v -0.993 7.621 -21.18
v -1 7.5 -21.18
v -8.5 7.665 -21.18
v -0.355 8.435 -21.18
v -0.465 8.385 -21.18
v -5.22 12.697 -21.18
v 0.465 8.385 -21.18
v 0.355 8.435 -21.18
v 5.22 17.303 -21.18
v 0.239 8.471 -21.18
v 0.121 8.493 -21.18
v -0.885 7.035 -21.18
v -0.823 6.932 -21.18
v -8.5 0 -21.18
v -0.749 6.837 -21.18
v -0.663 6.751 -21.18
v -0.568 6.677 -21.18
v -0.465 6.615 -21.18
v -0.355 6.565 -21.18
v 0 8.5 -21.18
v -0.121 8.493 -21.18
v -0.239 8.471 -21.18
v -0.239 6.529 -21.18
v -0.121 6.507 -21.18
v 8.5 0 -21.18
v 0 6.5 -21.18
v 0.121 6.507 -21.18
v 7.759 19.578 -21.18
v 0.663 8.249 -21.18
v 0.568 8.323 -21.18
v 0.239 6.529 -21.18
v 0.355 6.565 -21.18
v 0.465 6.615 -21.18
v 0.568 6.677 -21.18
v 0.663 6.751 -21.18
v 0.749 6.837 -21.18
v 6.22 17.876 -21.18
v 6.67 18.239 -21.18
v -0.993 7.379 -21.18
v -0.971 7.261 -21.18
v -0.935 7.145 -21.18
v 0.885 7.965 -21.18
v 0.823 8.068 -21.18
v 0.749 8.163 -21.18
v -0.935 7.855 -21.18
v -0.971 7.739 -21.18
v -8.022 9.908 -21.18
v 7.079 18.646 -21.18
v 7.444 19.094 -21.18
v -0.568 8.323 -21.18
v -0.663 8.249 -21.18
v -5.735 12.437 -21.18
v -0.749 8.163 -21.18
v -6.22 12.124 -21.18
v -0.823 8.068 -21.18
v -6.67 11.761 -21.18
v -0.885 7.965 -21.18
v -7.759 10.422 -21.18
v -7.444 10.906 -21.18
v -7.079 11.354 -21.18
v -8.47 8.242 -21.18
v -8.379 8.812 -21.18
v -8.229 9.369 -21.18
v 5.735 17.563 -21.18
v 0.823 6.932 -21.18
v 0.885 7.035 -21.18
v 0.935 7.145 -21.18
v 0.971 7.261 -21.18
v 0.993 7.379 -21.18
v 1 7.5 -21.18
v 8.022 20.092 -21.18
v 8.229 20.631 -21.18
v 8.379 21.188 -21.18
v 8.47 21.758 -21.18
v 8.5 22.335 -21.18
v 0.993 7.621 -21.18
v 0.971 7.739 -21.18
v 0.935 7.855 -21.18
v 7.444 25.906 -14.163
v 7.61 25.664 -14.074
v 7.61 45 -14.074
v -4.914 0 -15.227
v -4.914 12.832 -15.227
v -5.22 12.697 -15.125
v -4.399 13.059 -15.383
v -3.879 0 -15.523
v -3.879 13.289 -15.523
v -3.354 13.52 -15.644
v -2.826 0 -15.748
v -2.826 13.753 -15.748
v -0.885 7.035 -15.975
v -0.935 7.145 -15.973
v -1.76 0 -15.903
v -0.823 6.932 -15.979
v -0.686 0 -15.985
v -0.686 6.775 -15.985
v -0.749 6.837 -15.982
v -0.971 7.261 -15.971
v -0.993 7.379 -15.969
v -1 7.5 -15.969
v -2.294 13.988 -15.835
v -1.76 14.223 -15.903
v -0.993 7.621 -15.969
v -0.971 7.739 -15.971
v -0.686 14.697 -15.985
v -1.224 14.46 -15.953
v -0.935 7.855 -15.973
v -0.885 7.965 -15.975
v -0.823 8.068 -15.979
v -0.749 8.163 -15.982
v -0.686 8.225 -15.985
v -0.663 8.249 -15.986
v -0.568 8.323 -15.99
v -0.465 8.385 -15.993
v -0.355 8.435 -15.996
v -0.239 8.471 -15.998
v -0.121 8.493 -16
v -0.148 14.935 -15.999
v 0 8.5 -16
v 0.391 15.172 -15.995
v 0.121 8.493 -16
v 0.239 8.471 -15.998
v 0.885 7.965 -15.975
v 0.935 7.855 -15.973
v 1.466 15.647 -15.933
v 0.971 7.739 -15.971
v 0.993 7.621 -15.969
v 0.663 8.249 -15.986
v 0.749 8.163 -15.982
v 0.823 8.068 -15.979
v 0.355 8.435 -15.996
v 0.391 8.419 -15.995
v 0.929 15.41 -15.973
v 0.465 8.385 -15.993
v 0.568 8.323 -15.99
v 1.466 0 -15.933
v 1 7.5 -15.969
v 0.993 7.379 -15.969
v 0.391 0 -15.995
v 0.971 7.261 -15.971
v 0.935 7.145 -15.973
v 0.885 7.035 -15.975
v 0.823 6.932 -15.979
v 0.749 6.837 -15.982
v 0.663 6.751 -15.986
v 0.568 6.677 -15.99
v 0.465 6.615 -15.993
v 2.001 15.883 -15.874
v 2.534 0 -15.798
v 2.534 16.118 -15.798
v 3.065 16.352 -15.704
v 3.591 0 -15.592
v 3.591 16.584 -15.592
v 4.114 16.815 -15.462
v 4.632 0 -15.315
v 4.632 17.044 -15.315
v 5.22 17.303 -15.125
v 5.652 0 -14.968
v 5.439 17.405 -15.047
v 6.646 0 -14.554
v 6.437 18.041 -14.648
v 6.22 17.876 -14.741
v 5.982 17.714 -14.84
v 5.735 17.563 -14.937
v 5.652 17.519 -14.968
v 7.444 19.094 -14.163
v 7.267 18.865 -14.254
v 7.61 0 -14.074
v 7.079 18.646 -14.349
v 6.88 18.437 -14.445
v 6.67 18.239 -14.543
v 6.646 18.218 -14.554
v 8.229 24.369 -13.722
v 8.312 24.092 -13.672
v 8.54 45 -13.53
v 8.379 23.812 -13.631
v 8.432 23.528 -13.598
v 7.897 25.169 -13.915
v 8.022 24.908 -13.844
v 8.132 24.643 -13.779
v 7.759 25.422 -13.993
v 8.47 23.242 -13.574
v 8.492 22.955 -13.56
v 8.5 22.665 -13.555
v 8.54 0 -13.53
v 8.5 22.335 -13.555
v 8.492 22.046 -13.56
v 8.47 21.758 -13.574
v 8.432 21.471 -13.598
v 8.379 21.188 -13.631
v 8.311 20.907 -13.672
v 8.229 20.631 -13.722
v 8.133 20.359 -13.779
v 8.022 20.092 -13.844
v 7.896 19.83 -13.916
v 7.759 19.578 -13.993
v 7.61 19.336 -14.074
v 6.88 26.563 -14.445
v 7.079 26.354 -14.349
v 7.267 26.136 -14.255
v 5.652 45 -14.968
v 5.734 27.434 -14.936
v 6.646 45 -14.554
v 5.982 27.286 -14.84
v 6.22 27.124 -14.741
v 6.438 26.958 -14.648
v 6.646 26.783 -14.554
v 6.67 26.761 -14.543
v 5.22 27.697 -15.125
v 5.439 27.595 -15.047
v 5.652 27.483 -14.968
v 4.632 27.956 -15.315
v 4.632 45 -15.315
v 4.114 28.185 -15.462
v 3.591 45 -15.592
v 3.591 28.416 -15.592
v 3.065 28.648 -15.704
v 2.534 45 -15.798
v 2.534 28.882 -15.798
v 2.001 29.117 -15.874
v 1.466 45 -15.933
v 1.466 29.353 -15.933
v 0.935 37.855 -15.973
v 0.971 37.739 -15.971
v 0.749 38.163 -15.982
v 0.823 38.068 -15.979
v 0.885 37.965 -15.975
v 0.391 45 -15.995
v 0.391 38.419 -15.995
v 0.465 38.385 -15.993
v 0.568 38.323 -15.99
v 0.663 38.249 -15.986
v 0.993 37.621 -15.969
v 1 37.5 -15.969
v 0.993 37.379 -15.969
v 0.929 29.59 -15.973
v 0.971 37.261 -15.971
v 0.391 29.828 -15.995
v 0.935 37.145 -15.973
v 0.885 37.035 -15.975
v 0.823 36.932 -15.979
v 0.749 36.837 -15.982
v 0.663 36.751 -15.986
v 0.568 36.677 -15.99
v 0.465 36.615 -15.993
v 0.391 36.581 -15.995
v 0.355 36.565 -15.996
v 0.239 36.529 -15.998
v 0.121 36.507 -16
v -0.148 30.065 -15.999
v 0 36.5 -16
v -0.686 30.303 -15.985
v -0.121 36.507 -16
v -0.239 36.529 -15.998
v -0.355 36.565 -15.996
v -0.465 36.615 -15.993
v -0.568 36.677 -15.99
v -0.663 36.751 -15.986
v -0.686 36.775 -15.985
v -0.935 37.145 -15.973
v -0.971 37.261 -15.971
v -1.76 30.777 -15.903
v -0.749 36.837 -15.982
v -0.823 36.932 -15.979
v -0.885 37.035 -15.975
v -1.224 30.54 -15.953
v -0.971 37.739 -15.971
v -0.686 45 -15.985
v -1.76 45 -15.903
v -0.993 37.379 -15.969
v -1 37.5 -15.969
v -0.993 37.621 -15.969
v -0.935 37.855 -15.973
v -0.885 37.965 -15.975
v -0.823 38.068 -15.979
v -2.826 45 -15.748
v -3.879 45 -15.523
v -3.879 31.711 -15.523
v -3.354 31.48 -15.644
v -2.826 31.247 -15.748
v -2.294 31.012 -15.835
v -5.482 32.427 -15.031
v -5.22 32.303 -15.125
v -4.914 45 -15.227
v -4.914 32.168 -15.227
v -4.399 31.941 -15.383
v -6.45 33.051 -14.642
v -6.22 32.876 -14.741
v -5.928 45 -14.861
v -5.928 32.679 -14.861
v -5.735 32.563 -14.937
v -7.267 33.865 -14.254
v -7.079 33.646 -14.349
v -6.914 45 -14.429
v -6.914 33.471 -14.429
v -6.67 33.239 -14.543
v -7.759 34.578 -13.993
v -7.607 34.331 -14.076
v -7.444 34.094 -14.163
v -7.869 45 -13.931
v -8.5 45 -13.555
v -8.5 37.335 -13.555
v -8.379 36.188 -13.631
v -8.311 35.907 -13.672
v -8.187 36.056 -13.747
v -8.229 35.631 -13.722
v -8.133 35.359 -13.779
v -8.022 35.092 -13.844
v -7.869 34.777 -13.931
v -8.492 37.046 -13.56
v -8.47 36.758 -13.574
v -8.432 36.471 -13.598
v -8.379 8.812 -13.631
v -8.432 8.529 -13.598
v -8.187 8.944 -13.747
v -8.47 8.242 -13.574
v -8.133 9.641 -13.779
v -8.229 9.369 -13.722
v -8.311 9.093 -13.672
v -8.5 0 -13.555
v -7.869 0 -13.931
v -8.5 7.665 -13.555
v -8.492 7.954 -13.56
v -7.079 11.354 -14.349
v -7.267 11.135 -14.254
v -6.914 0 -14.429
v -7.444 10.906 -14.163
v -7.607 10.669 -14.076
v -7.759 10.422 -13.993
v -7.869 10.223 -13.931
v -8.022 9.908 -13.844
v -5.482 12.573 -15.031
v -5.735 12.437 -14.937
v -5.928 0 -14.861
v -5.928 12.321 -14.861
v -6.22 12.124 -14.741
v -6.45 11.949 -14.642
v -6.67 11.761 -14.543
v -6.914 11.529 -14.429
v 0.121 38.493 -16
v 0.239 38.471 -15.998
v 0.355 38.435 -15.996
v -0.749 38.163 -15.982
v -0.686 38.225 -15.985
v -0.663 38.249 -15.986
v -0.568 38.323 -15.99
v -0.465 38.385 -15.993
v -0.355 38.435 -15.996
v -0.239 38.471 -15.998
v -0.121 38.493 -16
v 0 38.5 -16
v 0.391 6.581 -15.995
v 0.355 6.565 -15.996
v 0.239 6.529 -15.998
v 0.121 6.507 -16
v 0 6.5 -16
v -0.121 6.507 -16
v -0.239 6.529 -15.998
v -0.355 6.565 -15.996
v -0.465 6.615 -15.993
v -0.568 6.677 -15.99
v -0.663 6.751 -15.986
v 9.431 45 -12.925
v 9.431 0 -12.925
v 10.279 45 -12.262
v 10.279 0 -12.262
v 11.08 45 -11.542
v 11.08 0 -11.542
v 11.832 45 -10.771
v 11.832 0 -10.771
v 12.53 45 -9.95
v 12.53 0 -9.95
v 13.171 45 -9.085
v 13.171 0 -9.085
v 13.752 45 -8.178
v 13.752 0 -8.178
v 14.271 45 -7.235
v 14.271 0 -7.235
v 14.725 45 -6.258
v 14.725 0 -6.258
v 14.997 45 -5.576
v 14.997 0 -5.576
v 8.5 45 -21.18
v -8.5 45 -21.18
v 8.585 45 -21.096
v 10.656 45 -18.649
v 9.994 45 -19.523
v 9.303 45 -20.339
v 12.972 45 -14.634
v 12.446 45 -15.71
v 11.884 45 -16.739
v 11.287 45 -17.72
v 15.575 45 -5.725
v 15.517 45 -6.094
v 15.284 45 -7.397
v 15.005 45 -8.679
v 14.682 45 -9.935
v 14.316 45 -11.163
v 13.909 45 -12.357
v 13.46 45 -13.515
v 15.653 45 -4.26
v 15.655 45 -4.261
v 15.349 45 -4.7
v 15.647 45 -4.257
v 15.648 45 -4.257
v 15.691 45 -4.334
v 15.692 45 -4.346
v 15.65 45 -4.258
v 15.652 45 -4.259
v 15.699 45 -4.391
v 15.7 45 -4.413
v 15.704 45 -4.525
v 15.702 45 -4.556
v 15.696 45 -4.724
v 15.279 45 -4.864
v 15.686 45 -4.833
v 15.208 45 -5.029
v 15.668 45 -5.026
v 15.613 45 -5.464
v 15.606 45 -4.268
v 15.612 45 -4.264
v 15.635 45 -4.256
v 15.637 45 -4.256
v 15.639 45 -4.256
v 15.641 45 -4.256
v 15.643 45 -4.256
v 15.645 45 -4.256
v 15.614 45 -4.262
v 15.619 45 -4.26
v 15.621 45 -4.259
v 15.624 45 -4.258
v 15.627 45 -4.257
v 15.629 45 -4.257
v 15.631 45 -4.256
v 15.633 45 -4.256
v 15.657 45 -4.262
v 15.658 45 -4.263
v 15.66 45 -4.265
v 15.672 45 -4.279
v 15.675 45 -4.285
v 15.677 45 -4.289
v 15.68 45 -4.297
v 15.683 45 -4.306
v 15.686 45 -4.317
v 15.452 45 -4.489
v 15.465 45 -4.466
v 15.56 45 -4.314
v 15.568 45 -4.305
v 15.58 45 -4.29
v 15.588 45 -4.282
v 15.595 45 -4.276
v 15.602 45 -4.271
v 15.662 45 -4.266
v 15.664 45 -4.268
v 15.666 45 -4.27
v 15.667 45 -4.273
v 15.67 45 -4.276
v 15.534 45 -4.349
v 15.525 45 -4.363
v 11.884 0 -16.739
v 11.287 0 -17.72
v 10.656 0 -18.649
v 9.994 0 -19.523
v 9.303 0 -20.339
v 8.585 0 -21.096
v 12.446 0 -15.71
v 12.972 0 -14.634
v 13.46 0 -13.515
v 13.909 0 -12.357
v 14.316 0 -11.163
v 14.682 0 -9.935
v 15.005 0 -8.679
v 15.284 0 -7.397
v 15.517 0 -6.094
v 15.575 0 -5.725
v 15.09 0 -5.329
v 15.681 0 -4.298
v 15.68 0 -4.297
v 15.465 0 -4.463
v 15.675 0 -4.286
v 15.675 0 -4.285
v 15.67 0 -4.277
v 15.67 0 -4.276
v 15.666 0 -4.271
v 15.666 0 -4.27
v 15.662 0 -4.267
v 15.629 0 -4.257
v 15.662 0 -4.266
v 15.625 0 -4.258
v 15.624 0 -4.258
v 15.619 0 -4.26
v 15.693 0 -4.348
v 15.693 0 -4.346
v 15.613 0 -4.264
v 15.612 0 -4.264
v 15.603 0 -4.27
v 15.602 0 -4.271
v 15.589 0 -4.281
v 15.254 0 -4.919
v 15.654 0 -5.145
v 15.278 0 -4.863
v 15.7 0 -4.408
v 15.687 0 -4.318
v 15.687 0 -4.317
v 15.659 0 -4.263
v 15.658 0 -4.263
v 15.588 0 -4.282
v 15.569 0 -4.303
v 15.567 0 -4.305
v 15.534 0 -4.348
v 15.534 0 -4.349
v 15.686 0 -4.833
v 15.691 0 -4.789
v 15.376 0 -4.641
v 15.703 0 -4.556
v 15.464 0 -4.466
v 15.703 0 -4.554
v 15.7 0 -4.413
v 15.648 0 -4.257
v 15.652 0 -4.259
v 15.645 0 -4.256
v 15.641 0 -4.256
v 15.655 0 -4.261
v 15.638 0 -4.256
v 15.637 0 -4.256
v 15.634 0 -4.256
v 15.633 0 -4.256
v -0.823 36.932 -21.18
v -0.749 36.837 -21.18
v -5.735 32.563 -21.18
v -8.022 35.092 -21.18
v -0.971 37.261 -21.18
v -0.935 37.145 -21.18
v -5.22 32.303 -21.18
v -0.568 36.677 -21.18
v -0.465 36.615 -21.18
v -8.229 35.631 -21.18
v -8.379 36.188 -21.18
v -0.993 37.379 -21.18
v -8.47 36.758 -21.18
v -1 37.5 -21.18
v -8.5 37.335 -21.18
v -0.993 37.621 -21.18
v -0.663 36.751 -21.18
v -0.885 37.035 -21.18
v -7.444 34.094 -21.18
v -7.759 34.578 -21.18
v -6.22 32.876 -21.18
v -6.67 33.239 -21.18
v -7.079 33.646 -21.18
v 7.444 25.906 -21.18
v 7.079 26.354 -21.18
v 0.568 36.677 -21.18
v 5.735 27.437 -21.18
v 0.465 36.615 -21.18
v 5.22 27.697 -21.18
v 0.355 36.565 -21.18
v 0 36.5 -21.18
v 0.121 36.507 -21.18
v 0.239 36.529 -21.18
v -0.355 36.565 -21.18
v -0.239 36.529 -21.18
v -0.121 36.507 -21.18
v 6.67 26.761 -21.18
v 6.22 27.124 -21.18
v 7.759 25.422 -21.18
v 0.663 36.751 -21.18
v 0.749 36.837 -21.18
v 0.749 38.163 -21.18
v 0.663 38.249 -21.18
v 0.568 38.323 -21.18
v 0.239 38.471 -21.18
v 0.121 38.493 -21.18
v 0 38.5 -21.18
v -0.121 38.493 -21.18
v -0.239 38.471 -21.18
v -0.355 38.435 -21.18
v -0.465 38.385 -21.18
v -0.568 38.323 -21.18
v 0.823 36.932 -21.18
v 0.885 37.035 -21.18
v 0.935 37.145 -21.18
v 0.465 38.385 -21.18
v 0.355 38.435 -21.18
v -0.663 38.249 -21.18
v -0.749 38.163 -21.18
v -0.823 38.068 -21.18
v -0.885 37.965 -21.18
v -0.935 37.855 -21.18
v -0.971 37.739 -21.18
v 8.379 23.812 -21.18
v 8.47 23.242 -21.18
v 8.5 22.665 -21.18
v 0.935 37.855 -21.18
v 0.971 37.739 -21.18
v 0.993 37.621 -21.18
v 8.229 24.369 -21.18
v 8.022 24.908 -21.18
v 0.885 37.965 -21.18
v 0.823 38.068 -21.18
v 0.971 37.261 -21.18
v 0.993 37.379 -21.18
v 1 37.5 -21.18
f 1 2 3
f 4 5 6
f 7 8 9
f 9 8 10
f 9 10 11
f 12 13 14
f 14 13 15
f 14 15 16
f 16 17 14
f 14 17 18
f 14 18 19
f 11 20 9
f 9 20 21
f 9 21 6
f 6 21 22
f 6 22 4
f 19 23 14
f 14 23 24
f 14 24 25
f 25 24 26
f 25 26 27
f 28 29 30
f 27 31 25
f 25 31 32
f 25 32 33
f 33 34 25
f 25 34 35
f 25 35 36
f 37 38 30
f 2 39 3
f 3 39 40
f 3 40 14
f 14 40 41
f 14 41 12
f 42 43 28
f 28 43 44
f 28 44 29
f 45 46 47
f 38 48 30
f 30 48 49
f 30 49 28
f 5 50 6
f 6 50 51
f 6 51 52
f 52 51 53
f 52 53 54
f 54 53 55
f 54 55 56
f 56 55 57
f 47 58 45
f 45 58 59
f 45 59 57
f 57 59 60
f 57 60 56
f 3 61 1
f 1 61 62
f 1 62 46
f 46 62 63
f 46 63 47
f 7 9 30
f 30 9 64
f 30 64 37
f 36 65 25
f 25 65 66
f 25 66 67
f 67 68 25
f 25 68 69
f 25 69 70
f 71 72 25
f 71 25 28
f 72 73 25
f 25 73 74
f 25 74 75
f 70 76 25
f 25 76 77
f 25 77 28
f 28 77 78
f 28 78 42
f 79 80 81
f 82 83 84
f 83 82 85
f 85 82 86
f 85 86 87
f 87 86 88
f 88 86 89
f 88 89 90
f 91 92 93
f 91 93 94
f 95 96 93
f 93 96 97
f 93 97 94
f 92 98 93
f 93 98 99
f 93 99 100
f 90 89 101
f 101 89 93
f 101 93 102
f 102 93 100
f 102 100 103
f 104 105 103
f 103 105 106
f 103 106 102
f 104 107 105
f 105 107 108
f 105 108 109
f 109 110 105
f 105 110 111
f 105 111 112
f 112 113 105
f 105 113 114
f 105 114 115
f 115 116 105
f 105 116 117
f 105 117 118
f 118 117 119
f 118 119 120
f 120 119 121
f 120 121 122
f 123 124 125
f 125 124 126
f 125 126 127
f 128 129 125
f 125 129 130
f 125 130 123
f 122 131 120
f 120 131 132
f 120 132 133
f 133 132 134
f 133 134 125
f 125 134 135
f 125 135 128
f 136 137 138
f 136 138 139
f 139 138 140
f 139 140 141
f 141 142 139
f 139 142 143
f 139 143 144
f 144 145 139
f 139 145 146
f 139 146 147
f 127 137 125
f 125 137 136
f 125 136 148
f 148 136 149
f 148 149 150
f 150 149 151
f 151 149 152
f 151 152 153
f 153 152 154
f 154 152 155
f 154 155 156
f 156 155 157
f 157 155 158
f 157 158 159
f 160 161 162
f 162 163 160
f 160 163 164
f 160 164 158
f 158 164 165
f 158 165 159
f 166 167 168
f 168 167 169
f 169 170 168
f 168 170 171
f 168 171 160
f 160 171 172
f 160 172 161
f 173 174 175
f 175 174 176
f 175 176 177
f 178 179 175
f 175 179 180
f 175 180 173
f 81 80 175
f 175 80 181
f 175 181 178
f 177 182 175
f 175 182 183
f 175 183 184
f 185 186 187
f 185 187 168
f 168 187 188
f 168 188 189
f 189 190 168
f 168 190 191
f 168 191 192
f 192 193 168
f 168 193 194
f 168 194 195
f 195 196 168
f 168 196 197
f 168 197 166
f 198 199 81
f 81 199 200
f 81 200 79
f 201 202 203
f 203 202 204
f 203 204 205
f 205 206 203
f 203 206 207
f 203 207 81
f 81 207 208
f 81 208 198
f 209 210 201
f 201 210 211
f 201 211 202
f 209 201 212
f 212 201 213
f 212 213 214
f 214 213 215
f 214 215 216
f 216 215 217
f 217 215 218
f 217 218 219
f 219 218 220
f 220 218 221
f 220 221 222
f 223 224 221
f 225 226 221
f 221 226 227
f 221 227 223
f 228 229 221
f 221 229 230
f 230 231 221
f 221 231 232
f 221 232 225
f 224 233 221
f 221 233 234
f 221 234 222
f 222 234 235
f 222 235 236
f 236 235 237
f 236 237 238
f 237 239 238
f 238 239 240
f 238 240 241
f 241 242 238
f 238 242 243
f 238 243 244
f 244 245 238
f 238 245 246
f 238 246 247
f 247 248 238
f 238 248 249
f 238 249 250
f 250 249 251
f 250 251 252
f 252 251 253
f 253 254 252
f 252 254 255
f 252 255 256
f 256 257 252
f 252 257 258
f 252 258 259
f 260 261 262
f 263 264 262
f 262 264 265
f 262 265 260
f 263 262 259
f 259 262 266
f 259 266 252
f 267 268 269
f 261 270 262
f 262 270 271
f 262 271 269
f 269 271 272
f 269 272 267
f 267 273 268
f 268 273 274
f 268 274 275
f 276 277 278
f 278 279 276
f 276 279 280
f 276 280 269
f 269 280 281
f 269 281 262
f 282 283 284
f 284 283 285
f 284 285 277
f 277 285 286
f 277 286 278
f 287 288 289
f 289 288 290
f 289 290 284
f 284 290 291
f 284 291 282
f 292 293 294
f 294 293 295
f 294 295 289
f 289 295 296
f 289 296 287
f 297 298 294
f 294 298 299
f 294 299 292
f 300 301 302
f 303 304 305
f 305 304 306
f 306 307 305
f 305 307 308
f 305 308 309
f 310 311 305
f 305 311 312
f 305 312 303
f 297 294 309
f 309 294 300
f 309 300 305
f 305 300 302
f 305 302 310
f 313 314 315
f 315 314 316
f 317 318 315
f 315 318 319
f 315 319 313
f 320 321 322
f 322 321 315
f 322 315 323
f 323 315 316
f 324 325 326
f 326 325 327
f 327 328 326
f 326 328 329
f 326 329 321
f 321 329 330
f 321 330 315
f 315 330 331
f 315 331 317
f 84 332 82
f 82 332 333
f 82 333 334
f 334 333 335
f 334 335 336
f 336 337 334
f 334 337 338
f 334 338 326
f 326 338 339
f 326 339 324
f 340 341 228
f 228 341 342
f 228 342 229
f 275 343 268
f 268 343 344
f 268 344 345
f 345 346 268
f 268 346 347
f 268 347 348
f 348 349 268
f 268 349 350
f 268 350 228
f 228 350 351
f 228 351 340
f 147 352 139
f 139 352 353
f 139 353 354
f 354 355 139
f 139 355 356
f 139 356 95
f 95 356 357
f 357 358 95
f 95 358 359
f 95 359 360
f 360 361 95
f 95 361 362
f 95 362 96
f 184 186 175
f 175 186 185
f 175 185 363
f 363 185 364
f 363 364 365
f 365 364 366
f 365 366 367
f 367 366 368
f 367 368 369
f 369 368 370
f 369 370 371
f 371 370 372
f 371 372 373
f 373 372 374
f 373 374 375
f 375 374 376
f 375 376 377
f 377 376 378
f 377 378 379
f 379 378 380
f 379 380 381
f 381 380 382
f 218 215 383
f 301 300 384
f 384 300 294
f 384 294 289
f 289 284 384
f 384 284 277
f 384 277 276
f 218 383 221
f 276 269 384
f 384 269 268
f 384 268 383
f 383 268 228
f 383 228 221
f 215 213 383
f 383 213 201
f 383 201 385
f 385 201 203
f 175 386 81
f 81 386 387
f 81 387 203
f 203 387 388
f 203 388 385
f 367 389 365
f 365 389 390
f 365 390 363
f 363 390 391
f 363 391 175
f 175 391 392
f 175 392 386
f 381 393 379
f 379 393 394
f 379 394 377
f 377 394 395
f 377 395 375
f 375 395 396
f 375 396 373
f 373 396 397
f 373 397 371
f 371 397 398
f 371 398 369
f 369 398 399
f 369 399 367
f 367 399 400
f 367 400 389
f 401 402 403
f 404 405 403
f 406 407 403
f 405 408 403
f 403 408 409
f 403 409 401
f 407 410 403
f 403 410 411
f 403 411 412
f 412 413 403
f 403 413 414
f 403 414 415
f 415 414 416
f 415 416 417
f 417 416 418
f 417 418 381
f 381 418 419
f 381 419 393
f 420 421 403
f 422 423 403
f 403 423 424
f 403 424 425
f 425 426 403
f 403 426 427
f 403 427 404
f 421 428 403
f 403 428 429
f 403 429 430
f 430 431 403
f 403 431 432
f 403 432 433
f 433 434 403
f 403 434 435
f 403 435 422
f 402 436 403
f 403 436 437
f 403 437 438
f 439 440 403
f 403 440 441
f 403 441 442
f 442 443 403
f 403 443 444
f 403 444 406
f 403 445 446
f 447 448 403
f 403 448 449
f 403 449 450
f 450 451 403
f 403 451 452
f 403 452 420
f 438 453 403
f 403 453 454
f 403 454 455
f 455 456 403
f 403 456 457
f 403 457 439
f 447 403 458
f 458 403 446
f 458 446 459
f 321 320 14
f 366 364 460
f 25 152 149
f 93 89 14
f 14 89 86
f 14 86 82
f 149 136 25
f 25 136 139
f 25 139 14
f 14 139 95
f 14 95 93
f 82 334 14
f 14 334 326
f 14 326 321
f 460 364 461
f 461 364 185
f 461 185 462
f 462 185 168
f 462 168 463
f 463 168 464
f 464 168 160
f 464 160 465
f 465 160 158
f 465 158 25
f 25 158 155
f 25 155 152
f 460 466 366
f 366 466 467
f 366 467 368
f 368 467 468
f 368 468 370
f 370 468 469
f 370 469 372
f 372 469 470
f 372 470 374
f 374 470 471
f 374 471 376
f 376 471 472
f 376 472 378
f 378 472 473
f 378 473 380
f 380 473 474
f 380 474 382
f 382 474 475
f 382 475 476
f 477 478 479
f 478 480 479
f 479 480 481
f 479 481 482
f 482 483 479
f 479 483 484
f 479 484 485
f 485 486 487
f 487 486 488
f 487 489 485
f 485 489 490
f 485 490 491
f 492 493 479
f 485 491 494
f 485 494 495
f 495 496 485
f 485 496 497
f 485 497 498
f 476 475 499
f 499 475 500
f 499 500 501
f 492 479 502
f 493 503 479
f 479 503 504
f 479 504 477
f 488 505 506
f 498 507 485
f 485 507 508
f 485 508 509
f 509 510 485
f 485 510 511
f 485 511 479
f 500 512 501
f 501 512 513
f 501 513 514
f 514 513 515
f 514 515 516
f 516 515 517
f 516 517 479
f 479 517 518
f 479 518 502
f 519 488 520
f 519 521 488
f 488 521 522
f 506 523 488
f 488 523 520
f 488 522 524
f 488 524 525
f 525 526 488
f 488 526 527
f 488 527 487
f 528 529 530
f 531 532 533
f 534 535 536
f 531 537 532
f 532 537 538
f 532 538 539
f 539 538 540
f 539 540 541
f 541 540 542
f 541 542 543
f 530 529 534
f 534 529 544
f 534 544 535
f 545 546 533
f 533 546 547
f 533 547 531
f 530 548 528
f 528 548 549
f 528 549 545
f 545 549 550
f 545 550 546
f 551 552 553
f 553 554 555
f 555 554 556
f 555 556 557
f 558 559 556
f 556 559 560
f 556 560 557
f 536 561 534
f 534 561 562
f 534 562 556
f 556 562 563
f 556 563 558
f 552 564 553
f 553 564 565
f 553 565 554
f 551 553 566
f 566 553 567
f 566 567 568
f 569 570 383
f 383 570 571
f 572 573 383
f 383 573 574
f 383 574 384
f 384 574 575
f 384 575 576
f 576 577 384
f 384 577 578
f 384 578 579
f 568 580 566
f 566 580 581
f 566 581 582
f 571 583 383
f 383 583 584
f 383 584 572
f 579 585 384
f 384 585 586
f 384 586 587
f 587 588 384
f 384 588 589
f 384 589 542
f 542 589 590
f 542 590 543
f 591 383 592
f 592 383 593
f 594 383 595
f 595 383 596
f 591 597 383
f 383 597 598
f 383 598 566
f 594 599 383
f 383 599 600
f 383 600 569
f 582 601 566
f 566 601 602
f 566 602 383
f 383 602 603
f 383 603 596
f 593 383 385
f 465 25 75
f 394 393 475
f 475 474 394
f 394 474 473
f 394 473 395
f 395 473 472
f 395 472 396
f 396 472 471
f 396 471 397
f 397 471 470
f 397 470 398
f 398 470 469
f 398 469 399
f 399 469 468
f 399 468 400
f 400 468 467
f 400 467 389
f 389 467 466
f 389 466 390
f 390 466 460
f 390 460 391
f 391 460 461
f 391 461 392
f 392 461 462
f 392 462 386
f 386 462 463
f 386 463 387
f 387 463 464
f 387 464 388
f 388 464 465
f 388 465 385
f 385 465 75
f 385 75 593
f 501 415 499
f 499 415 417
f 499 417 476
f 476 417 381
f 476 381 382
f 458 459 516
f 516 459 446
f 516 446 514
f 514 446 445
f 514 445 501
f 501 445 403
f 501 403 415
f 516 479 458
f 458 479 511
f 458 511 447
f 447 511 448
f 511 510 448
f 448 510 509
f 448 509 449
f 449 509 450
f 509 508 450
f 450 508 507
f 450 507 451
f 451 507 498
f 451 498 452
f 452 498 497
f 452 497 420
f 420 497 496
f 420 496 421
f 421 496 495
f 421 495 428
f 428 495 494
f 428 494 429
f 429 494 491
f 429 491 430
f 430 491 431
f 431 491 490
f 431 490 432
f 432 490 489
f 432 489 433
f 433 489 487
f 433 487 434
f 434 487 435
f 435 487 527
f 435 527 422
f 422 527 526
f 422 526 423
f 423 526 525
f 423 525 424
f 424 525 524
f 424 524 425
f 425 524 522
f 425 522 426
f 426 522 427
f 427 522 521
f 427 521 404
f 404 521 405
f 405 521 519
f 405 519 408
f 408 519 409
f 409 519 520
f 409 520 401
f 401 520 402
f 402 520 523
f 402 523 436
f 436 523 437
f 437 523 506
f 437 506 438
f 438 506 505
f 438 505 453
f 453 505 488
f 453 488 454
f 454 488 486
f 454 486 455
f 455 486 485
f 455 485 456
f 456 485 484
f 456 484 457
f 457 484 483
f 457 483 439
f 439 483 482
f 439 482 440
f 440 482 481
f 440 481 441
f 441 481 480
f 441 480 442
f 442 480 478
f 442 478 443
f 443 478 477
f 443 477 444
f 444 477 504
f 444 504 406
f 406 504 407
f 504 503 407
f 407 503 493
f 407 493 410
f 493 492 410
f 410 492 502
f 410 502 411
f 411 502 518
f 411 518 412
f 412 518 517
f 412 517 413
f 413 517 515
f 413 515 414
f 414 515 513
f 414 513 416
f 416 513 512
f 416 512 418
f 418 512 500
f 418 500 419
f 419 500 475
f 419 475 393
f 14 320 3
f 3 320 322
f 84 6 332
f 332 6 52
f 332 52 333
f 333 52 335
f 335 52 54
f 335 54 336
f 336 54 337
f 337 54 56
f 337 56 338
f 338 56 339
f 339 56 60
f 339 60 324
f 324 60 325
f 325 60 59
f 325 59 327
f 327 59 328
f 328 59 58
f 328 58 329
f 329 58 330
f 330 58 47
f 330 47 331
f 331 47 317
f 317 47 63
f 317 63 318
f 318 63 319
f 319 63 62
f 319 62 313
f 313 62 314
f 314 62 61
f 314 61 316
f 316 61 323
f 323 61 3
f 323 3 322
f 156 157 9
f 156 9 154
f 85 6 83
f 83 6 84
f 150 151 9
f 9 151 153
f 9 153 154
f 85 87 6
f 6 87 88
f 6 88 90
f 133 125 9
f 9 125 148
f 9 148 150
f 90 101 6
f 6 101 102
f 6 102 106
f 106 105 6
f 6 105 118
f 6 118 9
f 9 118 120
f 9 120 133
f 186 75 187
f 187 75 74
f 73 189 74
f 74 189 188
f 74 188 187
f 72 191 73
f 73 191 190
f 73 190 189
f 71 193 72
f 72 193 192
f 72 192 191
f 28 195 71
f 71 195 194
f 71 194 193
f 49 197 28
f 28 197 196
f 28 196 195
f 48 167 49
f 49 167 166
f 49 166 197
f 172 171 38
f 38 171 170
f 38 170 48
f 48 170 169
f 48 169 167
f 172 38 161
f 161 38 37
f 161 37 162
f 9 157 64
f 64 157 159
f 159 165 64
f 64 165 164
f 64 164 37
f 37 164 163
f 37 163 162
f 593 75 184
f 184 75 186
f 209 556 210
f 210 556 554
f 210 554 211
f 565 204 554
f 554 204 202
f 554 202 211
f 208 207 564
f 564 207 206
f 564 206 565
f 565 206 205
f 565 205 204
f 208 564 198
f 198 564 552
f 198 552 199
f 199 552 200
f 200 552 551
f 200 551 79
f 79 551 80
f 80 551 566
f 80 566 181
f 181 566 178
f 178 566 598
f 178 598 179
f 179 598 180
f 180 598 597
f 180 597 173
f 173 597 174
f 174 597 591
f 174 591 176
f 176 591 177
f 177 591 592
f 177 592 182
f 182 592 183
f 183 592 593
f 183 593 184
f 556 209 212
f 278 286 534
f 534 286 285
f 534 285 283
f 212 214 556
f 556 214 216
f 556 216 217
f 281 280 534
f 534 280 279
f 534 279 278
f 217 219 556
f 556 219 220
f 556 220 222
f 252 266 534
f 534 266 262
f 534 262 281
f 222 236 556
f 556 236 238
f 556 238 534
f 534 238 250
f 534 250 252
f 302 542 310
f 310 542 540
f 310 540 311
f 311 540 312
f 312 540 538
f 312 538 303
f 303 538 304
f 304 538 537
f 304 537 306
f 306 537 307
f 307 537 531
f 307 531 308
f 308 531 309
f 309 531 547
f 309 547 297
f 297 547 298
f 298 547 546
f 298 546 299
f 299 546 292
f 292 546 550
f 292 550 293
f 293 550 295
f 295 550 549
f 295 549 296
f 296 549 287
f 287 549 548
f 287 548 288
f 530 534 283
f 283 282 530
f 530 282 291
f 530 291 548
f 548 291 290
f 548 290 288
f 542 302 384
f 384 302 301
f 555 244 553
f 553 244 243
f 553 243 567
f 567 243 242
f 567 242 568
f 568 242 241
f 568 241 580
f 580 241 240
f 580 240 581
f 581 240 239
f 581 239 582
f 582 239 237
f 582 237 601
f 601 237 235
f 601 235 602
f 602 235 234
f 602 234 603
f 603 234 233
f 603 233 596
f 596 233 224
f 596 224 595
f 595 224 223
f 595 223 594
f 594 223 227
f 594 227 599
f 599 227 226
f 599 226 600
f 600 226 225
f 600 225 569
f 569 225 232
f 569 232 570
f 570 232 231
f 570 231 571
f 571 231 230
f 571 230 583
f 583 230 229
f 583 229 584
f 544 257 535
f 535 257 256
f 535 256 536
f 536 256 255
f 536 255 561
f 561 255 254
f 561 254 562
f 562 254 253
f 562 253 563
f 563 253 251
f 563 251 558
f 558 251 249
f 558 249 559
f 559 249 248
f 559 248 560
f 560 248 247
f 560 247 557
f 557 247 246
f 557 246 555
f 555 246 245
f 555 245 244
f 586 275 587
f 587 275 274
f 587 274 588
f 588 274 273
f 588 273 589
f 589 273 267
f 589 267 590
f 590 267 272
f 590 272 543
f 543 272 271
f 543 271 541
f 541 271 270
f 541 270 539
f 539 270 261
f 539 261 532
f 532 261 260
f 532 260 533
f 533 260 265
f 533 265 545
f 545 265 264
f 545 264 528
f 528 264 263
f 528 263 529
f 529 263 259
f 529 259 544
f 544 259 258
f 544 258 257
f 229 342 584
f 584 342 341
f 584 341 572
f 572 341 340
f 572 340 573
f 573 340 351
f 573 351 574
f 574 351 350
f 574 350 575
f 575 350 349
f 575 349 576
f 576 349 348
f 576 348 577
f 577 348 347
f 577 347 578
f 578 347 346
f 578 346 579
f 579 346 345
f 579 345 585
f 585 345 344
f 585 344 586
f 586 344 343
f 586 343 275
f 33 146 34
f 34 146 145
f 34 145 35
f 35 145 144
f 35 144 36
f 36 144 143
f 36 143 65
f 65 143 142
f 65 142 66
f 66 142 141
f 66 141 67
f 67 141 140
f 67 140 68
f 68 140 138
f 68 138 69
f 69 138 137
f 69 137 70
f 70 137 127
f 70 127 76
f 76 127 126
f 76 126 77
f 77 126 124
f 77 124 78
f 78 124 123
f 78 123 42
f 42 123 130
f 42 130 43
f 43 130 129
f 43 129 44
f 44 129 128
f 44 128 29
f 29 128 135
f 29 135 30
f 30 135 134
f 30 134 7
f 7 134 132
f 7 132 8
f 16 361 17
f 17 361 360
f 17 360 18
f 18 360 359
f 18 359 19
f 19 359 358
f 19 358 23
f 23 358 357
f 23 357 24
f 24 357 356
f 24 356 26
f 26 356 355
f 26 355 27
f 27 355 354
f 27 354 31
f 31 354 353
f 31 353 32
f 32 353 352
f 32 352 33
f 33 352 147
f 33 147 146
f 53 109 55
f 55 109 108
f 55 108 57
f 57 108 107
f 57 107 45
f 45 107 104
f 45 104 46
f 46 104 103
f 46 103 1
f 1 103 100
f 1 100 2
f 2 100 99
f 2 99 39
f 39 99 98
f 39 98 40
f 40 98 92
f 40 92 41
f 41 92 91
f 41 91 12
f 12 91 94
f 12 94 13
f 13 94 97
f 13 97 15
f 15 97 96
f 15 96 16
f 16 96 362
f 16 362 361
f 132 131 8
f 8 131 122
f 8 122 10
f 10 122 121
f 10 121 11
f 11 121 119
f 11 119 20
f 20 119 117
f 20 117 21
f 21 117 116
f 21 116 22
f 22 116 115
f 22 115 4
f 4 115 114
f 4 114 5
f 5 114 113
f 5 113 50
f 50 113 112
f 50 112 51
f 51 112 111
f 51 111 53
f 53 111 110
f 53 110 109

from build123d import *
from OCP.BRepAlgoAPI import BRepAlgoAPI_Cut
from OCP.TopTools import TopTools_ListOfShape

# Parameters (mm, degrees)
BOSS_EXTRUDE1_DEPTH = 45
FILLET1_START       = -1
FILLET1_DEPTH       = 47
SKETCH2_R           = 1.0000000000000002
SKETCH2_R_2         = 1
CUT_EXTRUDE2_DEPTH  = 30


with BuildPart() as part:
    # Sketch1 → Boss-Extrude1 (new body)
    with BuildSketch(Plane(origin=(0, 0, 0), x_dir=(1, 0, 0), z_dir=(0, 1, 0))):
        with BuildLine():
            add(Edge.make_bspline(
                [(-8.50000000000007, 21.18037767457174), (-15.999999999999995, 13.832083379312117), (-16, 5.08e-15)],
                knots=[0.5600753062265875, 0.5600753062265875, 0.5600753062265875, 1.5707963267948966, 1.5707963267948966, 1.5707963267948966], degree=2, weights=[1, 0.8750000000000013, 1]))
            ThreePointArc((-16, 1.96e-15), (9.8e-16, 16), (16, 0))
            add(Edge.make_bspline(
                [(16, -8.15e-15), (16.000000000000007, 13.83208337931212), (8.500000000000071, 21.18037767457174)],
                knots=[4.71238898038469, 4.71238898038469, 4.71238898038469, 5.723110000953, 5.723110000953, 5.723110000953], degree=2, weights=[1, 0.8750000000000011, 1]))
            Line((8.500000000000096, 21.18037767457181), (-8.500000000000096, 21.18037767457181))
        make_face()
    extrude(amount=BOSS_EXTRUDE1_DEPTH)


with BuildPart() as fillet1_tool:
    # Fillet1: read off the stored shape, not the designer's step
    # Fillet1 outline → Fillet1 (new body)
    with BuildSketch(Plane(origin=(0, 0, 0), x_dir=(1, 0, 0), z_dir=(0, 1, 0)).offset(FILLET1_START)):
        with BuildLine():
            ThreePointArc((-16, 0), (-15.747238962, 2.832748677), (-14.996941867, 5.575996291))
            add(Edge.make_bspline(
                [(-14.996941867, 5.575996291), (-16.0058043455114, 2.86260640488592), (-15.574790718, 5.72521281)],
                knots=[0, 0, 0, 1, 1, 1], degree=2))
            add(Edge.make_bspline(
                [(-15.574790718, 5.72521281), (-15.999999999999998, 2.901156361523757), (-16, 0)],
                knots=[1.3355704187750619, 1.3355704187750619, 1.3355704187750619, 1.5707963267948966, 1.5707963267948966, 1.5707963267948966], degree=2, weights=[0.9553582068029054, 0.9709086504543596, 1]))
        make_face()
        with BuildLine():
            add(Edge.make_bspline(
                [(15.574790718, 5.72521281), (16.0058043455114, 2.86260640488591), (14.996941867, 5.575996291)],
                knots=[0, 0, 0, 1, 1, 1], degree=2))
            ThreePointArc((14.996941867, 5.575996291), (15.747238962, 2.832748677), (16, 0))
            add(Edge.make_bspline(
                [(16, 0), (15.999999999999998, 2.901156361523736), (15.574790718, 5.72521281)],
                knots=[4.71238898038469, 4.71238898038469, 4.71238898038469, 4.947614888404523, 4.947614888404523, 4.947614888404523], degree=2, weights=[1, 0.9709086504543597, 0.9553582068029054]))
        make_face()
    extrude(amount=FILLET1_DEPTH)


with BuildPart() as part_1:
    add(part.part)

    # Fillet1: cut by fillet1_tool, with a tolerance
    fillet1_stock = TopTools_ListOfShape()
    fillet1_stock.Append(part_1.part.wrapped)
    fillet1_tools = TopTools_ListOfShape()
    fillet1_tools.Append(fillet1_tool.part.wrapped)
    fillet1_cut = BRepAlgoAPI_Cut()
    fillet1_cut.SetArguments(fillet1_stock)
    fillet1_cut.SetTools(fillet1_tools)
    fillet1_cut.SetFuzzyValue(0.00001)
    fillet1_cut.Build()
    add(Compound.cast(fillet1_cut.Shape()).solids(), mode=Mode.REPLACE)

    # Sketch2 → Cut-Extrude2 (cut)
    # profile 1 of 5: a face of its own
    with BuildSketch(Plane(origin=(0, 0, -21.18037767457181), x_dir=(-1, 0, 0), z_dir=(0, 0, -1))):
        Polygon((8.500000000000002, 45), (8.500000000000002, 37.334998409902454), (8.500000000000002, 7.665001590097545), (8.500000000000002, 0), (34.98658656522835, 0), (34.98658656522835, 45), align=None)
    # profile 2 of 5: a face of its own
    with BuildSketch(Plane(origin=(0, 0, -21.18037767457181), x_dir=(-1, 0, 0), z_dir=(0, 0, -1))):
        with BuildLine():
            Line((5.220021136169592, 32.302950501251296), (-5.2200211361696205, 27.697049498748697))
            ThreePointArc((-5.2200211361696205, 27.697049498748697), (-7.607608720851468, 25.668323396953035), (-8.500000000000005, 22.66500159009757))
            Line((-8.500000000000004, 22.66500159009757), (-8.500000000000004, 22.334998409902422))
            ThreePointArc((-8.500000000000005, 22.334998409902422), (-7.607608720851465, 19.331676603046958), (-5.220021136169617, 17.302950501251296))
            Line((-5.220021136169617, 17.302950501251296), (5.2200211361695885, 12.69704949874871))
            ThreePointArc((5.22002113616959, 12.697049498748711), (7.607608720851465, 10.668323396953037), (8.500000000000004, 7.665001590097545))
            Line((8.500000000000002, 7.665001590097545), (8.500000000000002, 37.334998409902454))
            ThreePointArc((8.499999999999998, 37.334998409902454), (7.607608720851465, 34.331676603046965), (5.220021136169594, 32.302950501251296))
        make_face()
        with Locations((0, 22.500000000000004)):
            Circle(SKETCH2_R, mode=Mode.SUBTRACT)
    # profile 3 of 5: a face of its own
    with BuildSketch(Plane(origin=(0, 0, -21.18037767457181), x_dir=(-1, 0, 0), z_dir=(0, 0, -1))):
        with Locations((0, 22.500000000000004)):
            Circle(SKETCH2_R)
    # profile 4 of 5: a face of its own
    with BuildSketch(Plane(origin=(0, 0, -21.18037767457181), x_dir=(-1, 0, 0), z_dir=(0, 0, -1))):
        with Locations((-1.388e-14, 37.5)):
            Circle(SKETCH2_R)
    # profile 5 of 5: a face of its own
    with BuildSketch(Plane(origin=(0, 0, -21.18037767457181), x_dir=(-1, 0, 0), z_dir=(0, 0, -1))):
        with Locations((-1.431e-14, 7.500000000000002)):
            Circle(SKETCH2_R_2)
    extrude(amount=-CUT_EXTRUDE2_DEPTH, mode=Mode.SUBTRACT)


solid = part_1.part
